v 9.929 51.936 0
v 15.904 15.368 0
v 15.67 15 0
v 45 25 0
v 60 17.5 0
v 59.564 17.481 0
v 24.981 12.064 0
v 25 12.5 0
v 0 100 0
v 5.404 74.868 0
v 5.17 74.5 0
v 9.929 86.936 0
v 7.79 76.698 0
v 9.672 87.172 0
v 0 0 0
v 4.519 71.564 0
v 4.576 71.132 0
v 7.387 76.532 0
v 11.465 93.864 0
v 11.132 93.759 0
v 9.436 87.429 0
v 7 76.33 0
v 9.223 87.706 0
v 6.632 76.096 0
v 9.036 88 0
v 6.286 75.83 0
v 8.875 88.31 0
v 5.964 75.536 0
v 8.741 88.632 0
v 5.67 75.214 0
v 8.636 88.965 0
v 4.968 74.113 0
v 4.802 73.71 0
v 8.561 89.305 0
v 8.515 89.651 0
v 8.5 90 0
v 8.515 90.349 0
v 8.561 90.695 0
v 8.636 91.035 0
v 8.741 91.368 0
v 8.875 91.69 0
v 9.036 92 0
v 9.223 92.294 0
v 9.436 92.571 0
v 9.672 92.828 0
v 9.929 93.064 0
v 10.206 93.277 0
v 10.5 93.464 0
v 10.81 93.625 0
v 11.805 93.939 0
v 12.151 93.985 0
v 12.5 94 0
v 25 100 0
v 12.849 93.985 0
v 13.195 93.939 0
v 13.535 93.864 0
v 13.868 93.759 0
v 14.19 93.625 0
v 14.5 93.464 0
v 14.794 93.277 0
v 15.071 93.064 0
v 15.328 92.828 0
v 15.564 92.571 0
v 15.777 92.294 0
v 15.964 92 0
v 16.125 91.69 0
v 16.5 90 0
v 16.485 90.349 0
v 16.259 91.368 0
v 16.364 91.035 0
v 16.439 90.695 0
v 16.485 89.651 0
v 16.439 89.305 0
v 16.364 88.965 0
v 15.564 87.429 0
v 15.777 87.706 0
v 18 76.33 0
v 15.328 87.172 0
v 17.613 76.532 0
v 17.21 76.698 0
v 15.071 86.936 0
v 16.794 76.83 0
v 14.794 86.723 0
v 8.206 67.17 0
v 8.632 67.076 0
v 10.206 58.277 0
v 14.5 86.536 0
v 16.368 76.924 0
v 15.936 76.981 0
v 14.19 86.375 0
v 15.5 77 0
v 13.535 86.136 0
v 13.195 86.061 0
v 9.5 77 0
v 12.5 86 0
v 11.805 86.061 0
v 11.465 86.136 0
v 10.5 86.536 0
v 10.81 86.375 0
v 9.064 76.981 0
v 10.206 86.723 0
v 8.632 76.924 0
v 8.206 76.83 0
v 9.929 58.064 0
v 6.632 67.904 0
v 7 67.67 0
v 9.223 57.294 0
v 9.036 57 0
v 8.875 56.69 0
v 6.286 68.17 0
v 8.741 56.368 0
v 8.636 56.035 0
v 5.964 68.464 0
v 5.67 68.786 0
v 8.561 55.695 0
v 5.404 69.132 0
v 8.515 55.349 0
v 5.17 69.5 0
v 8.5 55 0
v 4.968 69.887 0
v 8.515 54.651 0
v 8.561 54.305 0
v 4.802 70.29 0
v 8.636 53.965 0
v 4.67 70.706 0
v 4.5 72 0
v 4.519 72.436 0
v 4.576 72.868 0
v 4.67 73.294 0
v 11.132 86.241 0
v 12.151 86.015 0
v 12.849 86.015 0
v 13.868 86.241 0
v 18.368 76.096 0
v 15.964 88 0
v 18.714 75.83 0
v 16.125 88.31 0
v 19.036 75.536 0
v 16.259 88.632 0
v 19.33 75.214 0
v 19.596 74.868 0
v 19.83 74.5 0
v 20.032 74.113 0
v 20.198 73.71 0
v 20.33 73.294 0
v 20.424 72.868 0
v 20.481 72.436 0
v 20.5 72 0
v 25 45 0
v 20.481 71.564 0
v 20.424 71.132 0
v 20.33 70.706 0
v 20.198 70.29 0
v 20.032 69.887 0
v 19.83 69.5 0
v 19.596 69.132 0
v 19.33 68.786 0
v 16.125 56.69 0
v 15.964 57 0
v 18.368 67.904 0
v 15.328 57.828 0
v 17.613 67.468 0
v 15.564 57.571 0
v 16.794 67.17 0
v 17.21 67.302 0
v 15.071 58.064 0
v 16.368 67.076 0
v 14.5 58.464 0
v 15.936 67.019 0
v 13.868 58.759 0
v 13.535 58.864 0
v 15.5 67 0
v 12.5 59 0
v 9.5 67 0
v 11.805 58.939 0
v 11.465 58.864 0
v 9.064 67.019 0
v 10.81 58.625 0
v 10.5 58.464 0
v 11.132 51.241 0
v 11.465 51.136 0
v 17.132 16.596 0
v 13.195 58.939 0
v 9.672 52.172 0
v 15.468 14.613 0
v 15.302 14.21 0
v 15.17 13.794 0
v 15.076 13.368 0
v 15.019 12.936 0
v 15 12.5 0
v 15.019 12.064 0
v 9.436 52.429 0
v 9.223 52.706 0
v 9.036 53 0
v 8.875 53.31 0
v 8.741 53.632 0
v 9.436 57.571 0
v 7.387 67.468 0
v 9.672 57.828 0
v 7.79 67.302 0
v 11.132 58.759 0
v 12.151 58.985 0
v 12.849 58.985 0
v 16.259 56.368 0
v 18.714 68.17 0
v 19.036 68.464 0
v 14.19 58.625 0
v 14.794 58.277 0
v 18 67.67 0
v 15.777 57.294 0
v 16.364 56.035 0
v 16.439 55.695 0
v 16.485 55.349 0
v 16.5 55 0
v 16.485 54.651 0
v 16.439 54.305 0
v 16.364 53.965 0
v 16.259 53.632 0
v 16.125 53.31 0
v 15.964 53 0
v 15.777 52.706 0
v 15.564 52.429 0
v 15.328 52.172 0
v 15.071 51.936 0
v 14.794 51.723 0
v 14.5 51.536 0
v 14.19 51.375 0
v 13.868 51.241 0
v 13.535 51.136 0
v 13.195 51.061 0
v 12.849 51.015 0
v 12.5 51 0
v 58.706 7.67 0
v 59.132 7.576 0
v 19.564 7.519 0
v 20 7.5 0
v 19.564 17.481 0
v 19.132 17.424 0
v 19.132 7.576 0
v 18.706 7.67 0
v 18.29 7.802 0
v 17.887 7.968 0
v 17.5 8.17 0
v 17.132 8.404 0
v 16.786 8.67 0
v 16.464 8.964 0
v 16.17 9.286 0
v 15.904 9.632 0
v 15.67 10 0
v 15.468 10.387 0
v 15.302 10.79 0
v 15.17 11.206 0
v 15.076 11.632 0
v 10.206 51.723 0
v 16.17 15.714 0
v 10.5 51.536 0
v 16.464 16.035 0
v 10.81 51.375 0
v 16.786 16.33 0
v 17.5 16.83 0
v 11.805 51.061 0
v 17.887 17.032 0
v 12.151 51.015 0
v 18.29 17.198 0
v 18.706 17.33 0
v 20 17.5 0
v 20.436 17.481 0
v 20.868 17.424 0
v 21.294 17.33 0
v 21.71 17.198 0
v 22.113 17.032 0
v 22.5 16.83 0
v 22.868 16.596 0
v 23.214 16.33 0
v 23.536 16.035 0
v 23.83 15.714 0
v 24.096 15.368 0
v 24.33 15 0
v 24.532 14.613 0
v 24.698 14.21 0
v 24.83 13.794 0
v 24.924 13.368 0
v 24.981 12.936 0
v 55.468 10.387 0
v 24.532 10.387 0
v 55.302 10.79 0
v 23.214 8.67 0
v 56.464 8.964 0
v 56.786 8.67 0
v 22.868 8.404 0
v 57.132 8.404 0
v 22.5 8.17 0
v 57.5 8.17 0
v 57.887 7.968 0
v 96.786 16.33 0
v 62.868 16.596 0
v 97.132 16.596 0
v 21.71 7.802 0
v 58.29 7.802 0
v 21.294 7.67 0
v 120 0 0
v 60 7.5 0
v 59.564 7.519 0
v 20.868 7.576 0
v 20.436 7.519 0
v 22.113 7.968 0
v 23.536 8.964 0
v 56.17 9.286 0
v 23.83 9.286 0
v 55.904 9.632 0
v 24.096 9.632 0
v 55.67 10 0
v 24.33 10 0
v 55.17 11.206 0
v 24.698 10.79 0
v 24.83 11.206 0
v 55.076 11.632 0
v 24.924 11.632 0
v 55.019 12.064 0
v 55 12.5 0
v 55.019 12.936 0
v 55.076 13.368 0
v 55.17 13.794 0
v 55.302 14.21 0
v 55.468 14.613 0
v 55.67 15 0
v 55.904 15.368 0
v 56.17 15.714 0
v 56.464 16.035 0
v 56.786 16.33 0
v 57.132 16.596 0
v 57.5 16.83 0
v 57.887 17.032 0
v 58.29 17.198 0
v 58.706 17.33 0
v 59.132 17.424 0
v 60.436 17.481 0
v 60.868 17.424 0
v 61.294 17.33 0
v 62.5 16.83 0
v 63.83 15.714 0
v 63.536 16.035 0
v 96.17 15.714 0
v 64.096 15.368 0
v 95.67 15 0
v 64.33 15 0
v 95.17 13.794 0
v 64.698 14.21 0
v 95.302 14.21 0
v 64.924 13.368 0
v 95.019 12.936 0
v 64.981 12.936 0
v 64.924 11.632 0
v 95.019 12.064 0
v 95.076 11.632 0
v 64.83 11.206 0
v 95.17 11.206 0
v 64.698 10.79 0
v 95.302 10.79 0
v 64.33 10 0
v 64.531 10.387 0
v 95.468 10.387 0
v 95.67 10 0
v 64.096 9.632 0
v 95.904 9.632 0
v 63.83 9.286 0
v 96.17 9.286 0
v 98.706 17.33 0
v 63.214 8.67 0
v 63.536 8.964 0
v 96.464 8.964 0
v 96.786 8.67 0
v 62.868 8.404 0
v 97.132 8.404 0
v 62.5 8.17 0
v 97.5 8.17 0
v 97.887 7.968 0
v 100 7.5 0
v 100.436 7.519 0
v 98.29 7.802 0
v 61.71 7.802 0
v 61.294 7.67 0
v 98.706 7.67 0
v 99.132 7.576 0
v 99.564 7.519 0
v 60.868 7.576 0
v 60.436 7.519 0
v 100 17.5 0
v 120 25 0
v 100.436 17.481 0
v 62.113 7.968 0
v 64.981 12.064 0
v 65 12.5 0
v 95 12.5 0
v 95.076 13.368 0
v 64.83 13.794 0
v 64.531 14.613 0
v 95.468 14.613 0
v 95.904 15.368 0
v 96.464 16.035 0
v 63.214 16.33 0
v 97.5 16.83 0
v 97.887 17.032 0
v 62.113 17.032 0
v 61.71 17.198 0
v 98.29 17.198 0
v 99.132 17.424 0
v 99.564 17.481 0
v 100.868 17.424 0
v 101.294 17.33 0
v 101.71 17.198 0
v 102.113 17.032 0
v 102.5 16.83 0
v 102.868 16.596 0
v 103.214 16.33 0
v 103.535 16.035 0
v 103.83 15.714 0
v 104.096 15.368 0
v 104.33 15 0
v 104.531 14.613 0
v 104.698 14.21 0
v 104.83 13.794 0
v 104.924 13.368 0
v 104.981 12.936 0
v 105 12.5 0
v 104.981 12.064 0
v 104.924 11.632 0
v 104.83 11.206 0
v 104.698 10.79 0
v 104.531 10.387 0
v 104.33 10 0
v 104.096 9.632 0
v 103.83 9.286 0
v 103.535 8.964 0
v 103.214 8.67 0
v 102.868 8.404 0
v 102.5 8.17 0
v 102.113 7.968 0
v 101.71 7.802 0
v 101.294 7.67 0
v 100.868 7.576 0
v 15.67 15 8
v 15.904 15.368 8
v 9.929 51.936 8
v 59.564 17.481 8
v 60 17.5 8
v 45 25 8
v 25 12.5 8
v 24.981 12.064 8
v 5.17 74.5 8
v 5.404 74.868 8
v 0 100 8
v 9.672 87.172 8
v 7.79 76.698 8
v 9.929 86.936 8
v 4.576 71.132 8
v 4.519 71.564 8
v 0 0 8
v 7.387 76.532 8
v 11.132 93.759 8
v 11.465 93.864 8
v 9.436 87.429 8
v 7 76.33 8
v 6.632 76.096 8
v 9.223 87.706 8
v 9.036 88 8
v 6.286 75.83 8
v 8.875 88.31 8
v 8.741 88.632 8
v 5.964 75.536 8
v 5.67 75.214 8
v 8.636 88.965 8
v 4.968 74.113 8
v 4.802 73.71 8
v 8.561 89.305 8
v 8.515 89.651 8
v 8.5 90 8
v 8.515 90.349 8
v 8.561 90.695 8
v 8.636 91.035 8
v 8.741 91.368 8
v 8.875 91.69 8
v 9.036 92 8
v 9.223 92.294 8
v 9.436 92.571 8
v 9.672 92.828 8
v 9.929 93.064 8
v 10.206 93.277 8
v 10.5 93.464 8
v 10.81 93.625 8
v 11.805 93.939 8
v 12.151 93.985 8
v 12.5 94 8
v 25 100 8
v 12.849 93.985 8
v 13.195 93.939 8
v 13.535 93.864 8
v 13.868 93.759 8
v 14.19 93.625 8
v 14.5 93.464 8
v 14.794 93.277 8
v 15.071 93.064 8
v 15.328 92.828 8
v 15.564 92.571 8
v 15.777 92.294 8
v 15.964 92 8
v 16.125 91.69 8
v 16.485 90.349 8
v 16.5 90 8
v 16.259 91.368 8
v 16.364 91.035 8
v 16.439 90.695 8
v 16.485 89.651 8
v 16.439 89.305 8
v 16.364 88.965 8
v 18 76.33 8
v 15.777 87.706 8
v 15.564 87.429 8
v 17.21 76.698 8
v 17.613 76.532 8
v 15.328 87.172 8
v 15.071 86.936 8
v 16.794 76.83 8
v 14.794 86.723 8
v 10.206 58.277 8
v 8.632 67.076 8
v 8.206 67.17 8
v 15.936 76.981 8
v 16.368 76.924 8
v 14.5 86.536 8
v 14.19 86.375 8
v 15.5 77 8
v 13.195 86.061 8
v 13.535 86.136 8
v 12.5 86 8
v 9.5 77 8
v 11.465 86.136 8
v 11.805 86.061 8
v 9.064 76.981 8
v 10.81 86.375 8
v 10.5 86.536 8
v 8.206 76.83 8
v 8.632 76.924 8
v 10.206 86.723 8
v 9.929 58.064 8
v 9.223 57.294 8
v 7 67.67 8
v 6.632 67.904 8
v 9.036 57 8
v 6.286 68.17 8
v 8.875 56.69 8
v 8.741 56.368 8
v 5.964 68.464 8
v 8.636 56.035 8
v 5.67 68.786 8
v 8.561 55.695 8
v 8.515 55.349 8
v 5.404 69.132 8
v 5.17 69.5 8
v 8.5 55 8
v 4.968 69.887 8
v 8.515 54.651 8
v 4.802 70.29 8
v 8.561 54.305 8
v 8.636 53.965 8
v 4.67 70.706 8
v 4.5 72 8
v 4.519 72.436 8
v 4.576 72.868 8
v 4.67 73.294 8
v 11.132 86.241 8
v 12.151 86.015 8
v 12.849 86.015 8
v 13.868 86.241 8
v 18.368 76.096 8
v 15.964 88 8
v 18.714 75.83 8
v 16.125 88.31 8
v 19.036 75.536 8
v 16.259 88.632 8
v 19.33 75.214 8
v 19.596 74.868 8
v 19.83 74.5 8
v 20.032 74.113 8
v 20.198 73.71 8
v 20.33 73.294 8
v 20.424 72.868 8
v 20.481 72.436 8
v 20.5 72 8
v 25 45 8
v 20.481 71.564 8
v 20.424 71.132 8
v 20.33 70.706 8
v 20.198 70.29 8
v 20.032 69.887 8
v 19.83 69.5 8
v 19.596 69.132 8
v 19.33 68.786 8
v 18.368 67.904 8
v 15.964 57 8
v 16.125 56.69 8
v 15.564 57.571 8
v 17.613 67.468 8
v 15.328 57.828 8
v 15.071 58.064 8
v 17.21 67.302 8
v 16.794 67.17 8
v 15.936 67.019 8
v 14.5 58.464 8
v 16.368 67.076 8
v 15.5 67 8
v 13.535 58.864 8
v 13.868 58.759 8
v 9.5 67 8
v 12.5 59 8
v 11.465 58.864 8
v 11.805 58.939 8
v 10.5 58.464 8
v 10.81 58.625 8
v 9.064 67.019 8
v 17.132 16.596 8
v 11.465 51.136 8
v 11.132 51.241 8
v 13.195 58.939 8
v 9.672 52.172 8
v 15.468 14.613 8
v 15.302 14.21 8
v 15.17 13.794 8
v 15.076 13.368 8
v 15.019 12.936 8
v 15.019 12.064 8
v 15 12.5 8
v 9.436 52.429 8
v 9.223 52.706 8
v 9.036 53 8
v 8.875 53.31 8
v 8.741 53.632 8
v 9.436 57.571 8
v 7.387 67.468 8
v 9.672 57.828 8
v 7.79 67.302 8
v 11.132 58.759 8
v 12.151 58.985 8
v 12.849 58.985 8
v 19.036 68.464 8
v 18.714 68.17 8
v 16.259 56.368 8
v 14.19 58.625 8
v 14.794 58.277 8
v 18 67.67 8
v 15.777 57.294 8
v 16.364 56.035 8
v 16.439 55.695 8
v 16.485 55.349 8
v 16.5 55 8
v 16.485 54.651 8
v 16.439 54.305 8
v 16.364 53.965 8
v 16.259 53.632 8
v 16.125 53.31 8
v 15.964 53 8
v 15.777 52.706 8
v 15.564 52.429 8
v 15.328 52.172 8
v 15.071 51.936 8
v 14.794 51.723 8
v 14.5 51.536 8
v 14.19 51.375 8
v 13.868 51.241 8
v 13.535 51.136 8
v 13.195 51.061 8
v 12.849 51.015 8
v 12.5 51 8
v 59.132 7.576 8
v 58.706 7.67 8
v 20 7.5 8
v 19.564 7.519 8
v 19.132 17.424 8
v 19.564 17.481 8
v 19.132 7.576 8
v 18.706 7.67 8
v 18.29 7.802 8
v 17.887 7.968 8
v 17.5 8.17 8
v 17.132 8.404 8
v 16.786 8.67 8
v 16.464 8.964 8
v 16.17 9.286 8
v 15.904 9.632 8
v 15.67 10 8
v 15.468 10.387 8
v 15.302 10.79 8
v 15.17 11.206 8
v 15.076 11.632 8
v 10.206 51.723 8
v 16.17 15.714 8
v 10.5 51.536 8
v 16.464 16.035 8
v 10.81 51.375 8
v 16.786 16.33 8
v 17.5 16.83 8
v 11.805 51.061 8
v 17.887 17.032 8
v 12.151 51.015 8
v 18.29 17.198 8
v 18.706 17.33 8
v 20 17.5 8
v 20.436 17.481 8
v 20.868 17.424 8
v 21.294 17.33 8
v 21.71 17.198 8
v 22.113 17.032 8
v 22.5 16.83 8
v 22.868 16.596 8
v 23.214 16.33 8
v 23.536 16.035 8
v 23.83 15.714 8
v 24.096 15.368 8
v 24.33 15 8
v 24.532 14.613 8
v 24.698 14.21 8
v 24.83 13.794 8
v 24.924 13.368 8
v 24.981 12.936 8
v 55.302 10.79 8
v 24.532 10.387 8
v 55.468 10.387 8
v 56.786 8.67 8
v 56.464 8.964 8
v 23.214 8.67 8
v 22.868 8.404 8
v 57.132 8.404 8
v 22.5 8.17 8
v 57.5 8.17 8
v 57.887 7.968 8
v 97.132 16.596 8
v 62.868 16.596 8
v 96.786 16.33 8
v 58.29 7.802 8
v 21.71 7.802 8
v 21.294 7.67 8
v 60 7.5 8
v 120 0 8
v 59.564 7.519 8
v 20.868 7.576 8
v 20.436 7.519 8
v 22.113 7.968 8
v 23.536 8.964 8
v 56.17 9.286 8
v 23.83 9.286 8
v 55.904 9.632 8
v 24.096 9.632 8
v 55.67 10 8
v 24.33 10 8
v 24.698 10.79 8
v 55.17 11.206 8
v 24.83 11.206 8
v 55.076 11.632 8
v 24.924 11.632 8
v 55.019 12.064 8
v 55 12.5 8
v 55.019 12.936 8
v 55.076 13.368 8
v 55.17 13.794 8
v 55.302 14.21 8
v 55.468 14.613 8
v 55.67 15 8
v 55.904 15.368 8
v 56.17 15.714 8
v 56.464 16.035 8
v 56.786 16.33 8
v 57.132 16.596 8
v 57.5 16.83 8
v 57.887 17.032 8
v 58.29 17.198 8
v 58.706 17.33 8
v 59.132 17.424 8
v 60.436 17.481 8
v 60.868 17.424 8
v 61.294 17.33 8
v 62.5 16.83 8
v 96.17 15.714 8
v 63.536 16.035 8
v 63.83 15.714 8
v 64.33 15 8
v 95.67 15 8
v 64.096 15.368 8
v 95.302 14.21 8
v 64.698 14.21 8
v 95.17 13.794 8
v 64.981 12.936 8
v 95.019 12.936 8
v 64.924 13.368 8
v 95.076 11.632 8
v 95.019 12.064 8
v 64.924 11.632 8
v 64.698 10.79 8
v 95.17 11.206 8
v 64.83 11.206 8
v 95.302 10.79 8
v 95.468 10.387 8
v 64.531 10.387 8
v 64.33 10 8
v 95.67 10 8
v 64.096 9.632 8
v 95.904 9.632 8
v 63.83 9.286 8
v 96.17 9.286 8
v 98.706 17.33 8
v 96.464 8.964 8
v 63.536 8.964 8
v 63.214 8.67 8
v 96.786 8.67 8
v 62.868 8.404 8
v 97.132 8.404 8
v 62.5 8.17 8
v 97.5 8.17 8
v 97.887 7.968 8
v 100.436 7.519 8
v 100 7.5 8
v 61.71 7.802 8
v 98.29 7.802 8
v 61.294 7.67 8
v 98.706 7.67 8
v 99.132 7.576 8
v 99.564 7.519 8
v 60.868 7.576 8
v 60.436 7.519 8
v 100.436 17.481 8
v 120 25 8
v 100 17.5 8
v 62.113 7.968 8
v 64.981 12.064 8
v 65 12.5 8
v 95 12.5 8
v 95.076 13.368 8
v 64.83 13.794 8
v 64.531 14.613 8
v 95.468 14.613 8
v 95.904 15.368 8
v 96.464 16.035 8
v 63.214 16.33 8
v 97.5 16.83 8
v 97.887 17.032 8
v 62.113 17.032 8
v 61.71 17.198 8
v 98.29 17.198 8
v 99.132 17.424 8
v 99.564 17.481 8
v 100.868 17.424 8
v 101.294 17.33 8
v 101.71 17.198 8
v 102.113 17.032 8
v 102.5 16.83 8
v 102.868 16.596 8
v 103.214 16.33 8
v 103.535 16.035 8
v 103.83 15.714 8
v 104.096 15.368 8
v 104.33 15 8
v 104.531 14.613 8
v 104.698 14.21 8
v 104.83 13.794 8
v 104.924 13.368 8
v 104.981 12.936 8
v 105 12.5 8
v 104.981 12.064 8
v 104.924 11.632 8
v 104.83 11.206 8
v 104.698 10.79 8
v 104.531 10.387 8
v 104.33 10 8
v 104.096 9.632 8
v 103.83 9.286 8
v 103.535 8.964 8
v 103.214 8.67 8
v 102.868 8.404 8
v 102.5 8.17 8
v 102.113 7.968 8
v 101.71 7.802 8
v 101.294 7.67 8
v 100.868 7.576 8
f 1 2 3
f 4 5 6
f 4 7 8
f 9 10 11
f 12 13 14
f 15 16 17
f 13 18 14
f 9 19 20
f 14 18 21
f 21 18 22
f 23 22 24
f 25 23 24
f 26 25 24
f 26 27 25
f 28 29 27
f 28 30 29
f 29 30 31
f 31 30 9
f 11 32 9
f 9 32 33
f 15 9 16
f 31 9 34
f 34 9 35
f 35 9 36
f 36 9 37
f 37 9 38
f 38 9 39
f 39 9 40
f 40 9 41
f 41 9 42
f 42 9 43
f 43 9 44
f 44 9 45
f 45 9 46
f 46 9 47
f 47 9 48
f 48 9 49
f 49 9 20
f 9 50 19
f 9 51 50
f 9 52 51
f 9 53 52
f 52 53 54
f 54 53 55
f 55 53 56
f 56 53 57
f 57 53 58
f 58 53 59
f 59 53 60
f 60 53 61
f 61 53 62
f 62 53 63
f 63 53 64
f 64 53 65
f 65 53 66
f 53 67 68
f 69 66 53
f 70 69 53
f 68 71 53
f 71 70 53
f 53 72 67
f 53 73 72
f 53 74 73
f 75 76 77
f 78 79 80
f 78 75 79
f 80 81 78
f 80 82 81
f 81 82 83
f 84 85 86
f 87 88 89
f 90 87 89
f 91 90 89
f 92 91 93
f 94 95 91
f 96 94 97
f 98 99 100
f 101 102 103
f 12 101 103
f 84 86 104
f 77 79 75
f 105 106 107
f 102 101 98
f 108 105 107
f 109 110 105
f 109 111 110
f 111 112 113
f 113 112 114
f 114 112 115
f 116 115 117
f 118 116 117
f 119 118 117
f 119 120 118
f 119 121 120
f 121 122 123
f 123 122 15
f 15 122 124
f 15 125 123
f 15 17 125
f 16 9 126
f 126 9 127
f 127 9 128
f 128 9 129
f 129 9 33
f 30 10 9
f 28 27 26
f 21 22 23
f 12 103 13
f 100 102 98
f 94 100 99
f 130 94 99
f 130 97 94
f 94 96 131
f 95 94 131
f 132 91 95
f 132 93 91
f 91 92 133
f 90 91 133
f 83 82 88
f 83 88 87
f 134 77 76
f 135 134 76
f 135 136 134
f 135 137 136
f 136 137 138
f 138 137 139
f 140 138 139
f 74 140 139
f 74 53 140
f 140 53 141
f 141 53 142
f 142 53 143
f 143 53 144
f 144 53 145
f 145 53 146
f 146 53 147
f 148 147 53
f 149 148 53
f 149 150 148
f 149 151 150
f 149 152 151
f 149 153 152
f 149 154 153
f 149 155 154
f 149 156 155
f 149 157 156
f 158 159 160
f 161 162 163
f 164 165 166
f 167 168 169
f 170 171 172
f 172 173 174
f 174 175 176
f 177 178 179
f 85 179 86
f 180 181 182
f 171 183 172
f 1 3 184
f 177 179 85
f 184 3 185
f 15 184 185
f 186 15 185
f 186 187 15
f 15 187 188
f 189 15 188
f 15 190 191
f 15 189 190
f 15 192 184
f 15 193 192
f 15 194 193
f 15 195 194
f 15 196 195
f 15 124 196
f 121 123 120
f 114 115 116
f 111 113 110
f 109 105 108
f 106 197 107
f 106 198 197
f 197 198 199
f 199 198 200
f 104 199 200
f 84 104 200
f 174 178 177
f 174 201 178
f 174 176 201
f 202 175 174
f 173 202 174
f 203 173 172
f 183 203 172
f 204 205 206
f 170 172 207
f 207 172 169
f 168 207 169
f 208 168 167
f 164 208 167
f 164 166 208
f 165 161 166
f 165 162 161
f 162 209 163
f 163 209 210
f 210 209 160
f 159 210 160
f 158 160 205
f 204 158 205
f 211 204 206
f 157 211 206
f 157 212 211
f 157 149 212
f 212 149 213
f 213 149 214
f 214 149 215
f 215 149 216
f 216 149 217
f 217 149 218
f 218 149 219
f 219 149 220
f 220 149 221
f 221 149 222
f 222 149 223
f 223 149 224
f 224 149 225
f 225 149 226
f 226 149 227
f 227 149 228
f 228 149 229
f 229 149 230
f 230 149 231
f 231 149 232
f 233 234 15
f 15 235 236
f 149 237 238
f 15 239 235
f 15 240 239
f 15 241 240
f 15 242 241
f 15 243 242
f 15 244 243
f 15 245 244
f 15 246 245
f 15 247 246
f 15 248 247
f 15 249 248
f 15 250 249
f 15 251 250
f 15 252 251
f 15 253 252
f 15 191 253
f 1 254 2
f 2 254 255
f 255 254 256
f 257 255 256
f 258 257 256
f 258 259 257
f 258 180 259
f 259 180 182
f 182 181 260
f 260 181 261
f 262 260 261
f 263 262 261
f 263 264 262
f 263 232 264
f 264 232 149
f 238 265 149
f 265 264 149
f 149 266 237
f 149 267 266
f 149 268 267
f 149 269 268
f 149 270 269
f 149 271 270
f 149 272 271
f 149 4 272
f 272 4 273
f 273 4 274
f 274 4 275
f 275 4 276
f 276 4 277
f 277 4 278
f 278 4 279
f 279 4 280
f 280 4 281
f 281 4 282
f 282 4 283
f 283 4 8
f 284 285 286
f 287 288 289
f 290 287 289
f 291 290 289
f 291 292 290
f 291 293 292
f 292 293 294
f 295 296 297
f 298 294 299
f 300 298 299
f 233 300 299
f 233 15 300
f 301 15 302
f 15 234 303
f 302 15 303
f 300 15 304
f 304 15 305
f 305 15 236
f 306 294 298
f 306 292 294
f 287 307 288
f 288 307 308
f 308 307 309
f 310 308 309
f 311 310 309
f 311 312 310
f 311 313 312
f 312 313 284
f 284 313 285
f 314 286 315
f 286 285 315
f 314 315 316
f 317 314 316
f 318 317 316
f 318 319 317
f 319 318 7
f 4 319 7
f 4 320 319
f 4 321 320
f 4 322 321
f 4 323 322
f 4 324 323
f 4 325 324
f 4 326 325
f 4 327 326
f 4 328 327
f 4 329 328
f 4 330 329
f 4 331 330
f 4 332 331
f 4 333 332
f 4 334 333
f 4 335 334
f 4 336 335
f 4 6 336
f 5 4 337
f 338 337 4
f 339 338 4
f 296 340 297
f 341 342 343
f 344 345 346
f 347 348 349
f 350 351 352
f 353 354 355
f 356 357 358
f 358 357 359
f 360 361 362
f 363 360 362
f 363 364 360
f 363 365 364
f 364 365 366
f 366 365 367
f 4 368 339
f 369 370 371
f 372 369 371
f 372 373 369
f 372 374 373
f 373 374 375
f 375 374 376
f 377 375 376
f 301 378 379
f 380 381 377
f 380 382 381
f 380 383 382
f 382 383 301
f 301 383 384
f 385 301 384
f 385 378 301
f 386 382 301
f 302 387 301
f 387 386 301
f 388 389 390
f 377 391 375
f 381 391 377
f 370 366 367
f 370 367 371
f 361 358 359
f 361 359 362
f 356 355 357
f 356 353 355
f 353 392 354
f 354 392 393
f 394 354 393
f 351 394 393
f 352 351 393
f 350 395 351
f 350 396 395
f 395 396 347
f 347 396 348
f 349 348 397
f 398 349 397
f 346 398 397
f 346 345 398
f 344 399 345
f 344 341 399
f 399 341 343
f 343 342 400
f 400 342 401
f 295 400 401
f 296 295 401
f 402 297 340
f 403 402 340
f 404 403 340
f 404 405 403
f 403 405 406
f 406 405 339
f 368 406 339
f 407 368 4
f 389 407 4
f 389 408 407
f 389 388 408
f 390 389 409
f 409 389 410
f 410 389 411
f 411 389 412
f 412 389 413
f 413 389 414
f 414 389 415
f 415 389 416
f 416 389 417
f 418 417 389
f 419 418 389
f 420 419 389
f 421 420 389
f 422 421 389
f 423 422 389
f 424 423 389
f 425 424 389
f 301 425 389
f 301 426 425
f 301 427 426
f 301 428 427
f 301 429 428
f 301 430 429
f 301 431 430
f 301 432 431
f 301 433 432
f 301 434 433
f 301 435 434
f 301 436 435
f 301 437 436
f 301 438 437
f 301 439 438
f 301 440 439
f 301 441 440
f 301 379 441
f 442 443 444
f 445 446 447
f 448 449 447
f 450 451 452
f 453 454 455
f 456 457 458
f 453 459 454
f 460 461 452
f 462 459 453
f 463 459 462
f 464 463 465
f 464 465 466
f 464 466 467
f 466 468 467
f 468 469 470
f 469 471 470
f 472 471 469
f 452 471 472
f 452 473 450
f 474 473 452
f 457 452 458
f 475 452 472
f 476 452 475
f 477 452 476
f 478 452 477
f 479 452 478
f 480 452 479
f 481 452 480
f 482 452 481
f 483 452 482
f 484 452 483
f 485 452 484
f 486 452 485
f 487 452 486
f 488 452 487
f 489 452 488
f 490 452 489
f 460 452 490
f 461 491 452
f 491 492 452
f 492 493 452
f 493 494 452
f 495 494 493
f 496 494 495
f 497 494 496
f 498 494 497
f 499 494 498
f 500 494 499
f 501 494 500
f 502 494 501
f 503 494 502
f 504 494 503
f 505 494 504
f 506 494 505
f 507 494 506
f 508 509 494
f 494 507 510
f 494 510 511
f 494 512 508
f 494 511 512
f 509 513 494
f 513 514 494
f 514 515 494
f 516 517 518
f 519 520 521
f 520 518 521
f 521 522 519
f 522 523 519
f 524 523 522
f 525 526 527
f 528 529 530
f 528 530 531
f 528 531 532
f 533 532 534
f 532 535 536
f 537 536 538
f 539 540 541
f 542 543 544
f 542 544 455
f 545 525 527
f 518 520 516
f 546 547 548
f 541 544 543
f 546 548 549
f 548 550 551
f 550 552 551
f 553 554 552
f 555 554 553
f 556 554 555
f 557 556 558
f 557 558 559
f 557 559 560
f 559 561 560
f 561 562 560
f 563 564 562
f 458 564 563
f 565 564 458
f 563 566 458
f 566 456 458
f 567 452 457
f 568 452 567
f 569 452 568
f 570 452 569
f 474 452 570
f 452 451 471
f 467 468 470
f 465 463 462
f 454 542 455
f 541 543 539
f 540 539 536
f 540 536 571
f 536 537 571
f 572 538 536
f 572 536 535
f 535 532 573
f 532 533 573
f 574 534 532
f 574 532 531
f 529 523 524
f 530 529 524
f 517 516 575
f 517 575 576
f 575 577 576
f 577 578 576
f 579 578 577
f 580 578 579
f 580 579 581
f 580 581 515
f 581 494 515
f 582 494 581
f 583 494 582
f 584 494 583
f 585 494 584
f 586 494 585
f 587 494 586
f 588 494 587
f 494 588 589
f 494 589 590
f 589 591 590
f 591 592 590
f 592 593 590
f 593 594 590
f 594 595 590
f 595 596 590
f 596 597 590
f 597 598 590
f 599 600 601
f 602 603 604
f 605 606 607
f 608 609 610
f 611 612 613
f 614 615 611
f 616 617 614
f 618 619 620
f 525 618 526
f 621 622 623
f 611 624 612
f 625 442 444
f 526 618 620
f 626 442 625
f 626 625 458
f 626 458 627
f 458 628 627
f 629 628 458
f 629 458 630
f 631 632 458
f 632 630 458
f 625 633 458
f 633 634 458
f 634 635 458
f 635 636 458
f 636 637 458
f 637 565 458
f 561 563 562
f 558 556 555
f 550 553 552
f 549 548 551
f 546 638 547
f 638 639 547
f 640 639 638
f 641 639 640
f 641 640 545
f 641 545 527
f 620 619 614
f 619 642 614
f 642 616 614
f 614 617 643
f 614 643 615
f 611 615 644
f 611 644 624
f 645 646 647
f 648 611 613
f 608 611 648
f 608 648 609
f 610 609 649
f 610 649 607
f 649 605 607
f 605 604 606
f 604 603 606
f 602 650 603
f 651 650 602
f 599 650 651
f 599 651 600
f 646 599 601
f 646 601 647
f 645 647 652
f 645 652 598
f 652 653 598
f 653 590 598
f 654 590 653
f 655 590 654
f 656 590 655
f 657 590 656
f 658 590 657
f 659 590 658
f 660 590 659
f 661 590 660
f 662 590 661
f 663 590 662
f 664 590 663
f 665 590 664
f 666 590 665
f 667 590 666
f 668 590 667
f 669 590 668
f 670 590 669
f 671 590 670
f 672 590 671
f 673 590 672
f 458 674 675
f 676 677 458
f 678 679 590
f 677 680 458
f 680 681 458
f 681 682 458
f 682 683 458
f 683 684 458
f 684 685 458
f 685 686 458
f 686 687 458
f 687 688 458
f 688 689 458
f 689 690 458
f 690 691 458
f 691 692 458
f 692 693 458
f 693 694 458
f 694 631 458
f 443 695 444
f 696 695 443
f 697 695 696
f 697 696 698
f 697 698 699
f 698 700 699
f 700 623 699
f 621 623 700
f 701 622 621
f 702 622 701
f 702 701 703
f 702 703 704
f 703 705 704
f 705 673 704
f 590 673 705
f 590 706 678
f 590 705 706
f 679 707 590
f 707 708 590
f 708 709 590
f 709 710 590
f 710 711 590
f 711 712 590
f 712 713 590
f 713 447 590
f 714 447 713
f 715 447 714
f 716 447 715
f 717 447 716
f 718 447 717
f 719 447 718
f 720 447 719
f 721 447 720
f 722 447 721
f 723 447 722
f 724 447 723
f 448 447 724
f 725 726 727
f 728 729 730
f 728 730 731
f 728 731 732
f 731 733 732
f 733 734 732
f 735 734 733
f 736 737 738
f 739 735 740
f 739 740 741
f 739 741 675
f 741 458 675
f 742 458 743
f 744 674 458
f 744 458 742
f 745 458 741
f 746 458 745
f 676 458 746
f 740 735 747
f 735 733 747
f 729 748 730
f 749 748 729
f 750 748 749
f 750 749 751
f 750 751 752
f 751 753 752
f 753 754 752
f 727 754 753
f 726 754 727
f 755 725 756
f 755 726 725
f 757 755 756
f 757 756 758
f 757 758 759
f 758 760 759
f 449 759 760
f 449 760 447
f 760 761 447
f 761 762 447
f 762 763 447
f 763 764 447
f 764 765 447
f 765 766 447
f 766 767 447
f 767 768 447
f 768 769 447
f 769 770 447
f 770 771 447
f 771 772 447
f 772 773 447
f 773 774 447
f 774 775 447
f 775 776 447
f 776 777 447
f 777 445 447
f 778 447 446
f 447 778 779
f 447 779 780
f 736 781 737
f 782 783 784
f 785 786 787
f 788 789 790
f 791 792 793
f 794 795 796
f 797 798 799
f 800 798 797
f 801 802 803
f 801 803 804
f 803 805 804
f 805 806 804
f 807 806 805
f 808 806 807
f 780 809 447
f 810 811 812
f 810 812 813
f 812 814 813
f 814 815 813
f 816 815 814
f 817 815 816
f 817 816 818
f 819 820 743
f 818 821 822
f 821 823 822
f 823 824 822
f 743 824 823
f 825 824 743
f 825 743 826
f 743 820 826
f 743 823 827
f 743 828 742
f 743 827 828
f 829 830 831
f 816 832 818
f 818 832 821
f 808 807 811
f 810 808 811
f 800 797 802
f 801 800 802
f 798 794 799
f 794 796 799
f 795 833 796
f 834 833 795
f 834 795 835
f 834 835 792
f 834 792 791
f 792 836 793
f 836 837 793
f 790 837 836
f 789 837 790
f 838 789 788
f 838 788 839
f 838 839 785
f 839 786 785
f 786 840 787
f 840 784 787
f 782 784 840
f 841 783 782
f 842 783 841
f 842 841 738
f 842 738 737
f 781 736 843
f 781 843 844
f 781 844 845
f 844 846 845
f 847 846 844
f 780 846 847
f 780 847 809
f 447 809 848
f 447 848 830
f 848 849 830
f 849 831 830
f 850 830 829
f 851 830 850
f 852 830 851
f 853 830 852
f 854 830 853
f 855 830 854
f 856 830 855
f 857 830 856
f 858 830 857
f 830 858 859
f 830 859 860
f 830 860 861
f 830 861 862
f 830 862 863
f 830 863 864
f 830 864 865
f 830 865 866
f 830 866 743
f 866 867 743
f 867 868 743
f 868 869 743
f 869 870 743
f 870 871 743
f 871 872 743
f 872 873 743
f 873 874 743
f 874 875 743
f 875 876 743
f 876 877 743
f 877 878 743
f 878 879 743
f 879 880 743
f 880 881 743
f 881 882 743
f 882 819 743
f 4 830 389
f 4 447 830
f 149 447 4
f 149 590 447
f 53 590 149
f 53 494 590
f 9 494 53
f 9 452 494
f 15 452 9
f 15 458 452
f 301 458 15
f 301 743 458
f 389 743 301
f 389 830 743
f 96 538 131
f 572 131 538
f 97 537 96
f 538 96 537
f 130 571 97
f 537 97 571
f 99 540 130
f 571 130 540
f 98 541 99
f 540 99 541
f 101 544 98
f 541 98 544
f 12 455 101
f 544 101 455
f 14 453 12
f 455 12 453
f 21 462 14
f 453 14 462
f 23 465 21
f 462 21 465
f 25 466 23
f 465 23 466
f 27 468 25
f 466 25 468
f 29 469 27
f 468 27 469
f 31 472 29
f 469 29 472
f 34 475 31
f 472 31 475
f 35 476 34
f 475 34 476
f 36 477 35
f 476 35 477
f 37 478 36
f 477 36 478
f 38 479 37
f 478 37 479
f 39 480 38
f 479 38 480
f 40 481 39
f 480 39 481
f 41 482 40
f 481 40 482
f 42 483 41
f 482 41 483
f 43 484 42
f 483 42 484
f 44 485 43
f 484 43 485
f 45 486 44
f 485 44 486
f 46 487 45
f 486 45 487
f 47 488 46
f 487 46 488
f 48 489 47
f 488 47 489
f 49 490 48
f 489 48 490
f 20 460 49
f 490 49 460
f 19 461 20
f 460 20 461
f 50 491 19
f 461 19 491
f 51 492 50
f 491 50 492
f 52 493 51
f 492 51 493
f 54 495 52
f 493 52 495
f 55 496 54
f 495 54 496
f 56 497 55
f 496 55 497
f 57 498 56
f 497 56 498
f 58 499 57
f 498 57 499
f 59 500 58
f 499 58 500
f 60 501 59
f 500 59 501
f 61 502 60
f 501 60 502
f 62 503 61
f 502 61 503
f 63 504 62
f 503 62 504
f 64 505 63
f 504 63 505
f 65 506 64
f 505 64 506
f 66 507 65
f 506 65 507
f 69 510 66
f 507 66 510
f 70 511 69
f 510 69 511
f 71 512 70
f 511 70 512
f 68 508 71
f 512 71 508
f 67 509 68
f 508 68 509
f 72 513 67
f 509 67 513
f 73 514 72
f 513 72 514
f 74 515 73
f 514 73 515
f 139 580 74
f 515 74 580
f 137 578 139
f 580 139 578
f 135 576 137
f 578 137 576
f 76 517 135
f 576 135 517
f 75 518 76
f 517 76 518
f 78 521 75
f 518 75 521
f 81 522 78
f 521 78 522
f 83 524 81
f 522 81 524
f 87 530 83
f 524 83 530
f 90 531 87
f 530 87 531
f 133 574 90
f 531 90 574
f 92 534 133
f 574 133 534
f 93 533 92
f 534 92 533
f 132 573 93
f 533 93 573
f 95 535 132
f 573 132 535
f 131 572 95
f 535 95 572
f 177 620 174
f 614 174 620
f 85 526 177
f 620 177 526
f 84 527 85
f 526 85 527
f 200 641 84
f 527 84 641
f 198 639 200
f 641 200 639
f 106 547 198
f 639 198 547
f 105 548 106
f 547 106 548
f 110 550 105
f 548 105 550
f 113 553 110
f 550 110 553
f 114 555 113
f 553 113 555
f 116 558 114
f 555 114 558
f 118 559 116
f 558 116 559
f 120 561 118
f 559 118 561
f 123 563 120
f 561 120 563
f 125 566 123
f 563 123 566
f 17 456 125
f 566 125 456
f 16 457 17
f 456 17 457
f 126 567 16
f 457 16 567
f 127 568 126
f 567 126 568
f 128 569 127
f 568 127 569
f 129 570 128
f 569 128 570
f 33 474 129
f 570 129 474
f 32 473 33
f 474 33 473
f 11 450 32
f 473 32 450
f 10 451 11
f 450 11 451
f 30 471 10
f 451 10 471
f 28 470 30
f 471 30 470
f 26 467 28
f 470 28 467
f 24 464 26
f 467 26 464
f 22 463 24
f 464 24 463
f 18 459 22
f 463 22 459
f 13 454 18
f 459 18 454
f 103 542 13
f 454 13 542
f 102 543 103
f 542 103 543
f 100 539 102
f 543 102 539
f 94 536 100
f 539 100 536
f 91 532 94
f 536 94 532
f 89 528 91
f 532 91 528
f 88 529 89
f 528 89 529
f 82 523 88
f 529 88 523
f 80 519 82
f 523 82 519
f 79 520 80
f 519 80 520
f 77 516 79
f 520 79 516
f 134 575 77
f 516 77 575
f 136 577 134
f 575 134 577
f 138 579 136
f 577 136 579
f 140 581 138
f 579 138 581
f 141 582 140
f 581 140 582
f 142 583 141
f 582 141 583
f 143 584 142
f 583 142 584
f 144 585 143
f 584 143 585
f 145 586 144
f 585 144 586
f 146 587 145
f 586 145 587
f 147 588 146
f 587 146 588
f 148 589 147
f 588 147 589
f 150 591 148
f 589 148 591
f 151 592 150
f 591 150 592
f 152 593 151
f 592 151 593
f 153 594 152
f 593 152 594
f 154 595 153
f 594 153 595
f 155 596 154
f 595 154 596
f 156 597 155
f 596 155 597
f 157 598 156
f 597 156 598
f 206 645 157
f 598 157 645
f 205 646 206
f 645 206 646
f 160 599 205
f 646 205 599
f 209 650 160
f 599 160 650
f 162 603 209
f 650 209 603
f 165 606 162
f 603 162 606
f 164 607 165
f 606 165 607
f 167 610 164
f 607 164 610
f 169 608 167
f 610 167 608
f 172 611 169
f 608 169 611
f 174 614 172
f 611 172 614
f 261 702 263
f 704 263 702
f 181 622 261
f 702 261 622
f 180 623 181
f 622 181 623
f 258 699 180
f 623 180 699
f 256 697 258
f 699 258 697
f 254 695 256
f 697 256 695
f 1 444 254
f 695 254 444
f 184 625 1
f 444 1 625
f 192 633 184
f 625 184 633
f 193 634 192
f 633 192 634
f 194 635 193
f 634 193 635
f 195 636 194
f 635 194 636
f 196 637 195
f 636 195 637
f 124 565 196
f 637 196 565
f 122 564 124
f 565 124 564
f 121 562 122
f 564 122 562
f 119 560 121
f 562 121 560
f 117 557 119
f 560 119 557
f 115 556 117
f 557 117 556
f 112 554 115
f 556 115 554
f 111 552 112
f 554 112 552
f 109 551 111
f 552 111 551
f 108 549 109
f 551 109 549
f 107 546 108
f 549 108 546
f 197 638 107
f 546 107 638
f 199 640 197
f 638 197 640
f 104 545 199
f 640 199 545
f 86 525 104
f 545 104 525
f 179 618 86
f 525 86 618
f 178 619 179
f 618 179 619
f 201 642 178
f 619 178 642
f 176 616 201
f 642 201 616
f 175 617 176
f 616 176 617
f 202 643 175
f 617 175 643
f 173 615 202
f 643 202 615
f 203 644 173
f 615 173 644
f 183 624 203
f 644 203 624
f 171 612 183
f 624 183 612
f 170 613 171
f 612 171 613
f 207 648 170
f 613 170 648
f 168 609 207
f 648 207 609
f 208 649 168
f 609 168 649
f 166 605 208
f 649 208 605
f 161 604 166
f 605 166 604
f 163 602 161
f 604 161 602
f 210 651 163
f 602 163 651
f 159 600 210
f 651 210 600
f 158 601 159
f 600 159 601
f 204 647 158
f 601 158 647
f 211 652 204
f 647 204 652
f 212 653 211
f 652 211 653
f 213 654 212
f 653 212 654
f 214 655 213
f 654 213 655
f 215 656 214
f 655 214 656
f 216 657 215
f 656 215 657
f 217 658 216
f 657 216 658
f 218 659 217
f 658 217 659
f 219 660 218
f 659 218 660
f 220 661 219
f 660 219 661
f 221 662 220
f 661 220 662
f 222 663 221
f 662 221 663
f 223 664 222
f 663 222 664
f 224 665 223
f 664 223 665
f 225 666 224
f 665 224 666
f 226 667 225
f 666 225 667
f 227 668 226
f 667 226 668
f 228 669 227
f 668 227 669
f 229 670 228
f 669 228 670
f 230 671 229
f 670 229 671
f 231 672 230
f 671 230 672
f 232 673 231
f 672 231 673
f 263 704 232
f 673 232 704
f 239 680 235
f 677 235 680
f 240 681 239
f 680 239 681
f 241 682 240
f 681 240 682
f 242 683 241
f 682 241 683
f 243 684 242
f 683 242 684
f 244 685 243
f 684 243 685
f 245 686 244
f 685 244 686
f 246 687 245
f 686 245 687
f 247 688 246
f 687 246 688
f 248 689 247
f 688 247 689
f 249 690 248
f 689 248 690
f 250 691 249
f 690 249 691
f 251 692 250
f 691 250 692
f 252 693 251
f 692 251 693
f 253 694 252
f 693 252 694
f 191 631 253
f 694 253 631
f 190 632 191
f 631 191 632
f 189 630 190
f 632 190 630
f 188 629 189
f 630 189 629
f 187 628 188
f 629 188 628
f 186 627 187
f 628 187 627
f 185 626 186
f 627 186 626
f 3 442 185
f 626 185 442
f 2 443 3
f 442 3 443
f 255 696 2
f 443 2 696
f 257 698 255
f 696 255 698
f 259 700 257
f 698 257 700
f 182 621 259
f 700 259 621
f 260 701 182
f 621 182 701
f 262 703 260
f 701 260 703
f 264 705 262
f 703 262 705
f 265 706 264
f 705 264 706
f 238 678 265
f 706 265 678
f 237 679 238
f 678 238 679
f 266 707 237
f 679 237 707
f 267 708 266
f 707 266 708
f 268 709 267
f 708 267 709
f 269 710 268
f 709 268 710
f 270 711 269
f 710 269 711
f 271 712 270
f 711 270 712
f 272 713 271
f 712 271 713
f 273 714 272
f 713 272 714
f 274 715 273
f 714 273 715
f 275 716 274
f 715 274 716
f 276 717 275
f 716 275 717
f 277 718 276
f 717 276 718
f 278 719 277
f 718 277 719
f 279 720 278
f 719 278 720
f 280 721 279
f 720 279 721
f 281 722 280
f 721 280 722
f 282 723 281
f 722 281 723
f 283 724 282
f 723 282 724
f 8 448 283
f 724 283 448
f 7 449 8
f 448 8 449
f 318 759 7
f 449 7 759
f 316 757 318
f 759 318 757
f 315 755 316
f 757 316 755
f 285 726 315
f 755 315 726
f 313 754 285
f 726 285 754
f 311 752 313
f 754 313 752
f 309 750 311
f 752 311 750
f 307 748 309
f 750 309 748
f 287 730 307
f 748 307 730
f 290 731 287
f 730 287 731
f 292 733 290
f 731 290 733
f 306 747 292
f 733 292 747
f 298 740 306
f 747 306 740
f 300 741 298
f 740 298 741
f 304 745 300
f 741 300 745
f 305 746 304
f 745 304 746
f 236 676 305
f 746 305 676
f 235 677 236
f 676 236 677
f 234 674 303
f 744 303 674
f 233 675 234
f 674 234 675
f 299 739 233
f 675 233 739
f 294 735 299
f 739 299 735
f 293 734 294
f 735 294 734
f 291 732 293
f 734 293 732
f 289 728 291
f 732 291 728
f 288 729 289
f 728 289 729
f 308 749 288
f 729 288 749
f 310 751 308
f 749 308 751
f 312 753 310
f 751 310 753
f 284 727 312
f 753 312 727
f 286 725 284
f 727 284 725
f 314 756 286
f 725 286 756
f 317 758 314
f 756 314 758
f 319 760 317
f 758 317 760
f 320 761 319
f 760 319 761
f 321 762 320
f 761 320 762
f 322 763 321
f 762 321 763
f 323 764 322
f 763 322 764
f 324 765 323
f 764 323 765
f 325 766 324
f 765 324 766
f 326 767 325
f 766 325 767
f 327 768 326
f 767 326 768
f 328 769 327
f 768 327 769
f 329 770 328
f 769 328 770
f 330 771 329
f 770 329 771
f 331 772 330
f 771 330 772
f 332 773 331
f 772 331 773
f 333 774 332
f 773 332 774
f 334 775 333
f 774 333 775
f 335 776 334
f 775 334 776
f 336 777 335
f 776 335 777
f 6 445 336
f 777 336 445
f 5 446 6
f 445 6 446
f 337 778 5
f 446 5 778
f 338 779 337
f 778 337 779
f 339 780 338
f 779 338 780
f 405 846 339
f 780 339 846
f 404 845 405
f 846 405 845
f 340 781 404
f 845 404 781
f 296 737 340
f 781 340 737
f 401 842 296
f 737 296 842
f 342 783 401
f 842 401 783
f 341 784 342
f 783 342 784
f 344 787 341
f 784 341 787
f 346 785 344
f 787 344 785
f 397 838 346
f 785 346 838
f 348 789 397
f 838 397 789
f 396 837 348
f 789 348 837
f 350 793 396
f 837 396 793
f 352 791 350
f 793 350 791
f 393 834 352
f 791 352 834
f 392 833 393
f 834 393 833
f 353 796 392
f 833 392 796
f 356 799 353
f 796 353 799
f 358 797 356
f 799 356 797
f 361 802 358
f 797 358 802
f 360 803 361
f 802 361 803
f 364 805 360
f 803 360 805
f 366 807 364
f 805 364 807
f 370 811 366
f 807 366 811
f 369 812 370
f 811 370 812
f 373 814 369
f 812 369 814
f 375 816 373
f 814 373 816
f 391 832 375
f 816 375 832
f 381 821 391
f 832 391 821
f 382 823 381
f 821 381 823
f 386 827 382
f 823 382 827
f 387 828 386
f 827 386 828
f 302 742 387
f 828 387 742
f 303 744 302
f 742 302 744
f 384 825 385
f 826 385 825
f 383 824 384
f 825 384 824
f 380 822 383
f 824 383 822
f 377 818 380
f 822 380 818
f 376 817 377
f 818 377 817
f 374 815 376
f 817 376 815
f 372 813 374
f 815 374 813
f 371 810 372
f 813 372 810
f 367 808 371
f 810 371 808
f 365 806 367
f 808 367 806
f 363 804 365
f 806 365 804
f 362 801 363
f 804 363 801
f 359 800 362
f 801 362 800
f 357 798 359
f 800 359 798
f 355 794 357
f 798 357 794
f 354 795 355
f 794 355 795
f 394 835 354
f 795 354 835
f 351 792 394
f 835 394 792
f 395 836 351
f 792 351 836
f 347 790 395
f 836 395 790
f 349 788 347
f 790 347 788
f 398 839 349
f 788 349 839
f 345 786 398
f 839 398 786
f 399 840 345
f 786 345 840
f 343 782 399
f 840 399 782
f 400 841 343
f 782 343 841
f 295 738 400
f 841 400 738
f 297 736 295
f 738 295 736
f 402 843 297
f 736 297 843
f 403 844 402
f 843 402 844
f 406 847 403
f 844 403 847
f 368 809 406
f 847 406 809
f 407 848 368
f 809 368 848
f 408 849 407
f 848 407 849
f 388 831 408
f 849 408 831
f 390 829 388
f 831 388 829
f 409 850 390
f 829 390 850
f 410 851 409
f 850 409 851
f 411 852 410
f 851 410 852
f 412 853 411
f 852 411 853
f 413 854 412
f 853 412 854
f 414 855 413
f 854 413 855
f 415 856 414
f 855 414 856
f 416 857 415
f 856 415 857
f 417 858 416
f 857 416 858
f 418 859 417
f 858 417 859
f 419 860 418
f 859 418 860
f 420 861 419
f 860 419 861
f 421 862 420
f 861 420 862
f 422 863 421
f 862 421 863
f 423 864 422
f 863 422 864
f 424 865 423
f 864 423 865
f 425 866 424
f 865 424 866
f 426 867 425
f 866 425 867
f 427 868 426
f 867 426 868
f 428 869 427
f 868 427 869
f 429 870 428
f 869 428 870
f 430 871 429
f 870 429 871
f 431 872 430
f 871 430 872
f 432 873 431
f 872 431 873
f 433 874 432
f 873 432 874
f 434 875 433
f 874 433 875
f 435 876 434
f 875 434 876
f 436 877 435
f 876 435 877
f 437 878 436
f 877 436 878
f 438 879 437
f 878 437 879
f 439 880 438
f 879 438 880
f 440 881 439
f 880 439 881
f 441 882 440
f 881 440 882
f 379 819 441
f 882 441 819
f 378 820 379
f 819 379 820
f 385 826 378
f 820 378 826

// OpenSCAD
// Generated by DXF to 3D (https://github.com) - open in OpenSCAD
depth = 8;
scale_factor = 1;

scale([scale_factor, scale_factor, 1])
union() {
  linear_extrude(height = depth)
    polygon(points = [[0,0],[120,0],[120,25],[45,25],[25,45],[25,100],[0,100],[25,12.5],[24.981,12.9358],[24.924,13.3682],[24.8296,13.7941],[24.6985,14.2101],[24.5315,14.6131],[24.3301,15],[24.0958,15.3679],[23.8302,15.7139],[23.5355,16.0355],[23.2139,16.3302],[22.8679,16.5958],[22.5,16.8301],[22.1131,17.0315],[21.7101,17.1985],[21.2941,17.3296],[20.8682,17.424],[20.4358,17.481],[20,17.5],[19.5642,17.481],[19.1318,17.424],[18.7059,17.3296],[18.2899,17.1985],[17.8869,17.0315],[17.5,16.8301],[17.1321,16.5958],[16.7861,16.3302],[16.4645,16.0355],[16.1698,15.7139],[15.9042,15.3679],[15.6699,15],[15.4685,14.6131],[15.3015,14.2101],[15.1704,13.7941],[15.076,13.3682],[15.019,12.9358],[15,12.5],[15.019,12.0642],[15.076,11.6318],[15.1704,11.2059],[15.3015,10.7899],[15.4685,10.3869],[15.6699,10],[15.9042,9.6321],[16.1698,9.2861],[16.4645,8.9645],[16.7861,8.6698],[17.1321,8.4042],[17.5,8.1699],[17.8869,7.9685],[18.2899,7.8015],[18.7059,7.6704],[19.1318,7.576],[19.5642,7.519],[20,7.5],[20.4358,7.519],[20.8682,7.576],[21.2941,7.6704],[21.7101,7.8015],[22.1131,7.9685],[22.5,8.1699],[22.8679,8.4042],[23.2139,8.6698],[23.5355,8.9645],[23.8302,9.2861],[24.0958,9.6321],[24.3301,10],[24.5315,10.3869],[24.6985,10.7899],[24.8296,11.2059],[24.924,11.6318],[24.981,12.0642],[65,12.5],[64.981,12.9358],[64.924,13.3682],[64.8296,13.7941],[64.6985,14.2101],[64.5315,14.6131],[64.3301,15],[64.0958,15.3679],[63.8302,15.7139],[63.5355,16.0355],[63.2139,16.3302],[62.8679,16.5958],[62.5,16.8301],[62.1131,17.0315],[61.7101,17.1985],[61.2941,17.3296],[60.8682,17.424],[60.4358,17.481],[60,17.5],[59.5642,17.481],[59.1318,17.424],[58.7059,17.3296],[58.2899,17.1985],[57.8869,17.0315],[57.5,16.8301],[57.1321,16.5958],[56.7861,16.3302],[56.4645,16.0355],[56.1698,15.7139],[55.9042,15.3679],[55.6699,15],[55.4685,14.6131],[55.3015,14.2101],[55.1704,13.7941],[55.076,13.3682],[55.019,12.9358],[55,12.5],[55.019,12.0642],[55.076,11.6318],[55.1704,11.2059],[55.3015,10.7899],[55.4685,10.3869],[55.6699,10],[55.9042,9.6321],[56.1698,9.2861],[56.4645,8.9645],[56.7861,8.6698],[57.1321,8.4042],[57.5,8.1699],[57.8869,7.9685],[58.2899,7.8015],[58.7059,7.6704],[59.1318,7.576],[59.5642,7.519],[60,7.5],[60.4358,7.519],[60.8682,7.576],[61.2941,7.6704],[61.7101,7.8015],[62.1131,7.9685],[62.5,8.1699],[62.8679,8.4042],[63.2139,8.6698],[63.5355,8.9645],[63.8302,9.2861],[64.0958,9.6321],[64.3301,10],[64.5315,10.3869],[64.6985,10.7899],[64.8296,11.2059],[64.924,11.6318],[64.981,12.0642],[105,12.5],[104.981,12.9358],[104.924,13.3682],[104.8296,13.7941],[104.6985,14.2101],[104.5315,14.6131],[104.3301,15],[104.0958,15.3679],[103.8302,15.7139],[103.5355,16.0355],[103.2139,16.3302],[102.8679,16.5958],[102.5,16.8301],[102.1131,17.0315],[101.7101,17.1985],[101.2941,17.3296],[100.8682,17.424],[100.4358,17.481],[100,17.5],[99.5642,17.481],[99.1318,17.424],[98.7059,17.3296],[98.2899,17.1985],[97.8869,17.0315],[97.5,16.8301],[97.1321,16.5958],[96.7861,16.3302],[96.4645,16.0355],[96.1698,15.7139],[95.9042,15.3679],[95.6699,15],[95.4685,14.6131],[95.3015,14.2101],[95.1704,13.7941],[95.076,13.3682],[95.019,12.9358],[95,12.5],[95.019,12.0642],[95.076,11.6318],[95.1704,11.2059],[95.3015,10.7899],[95.4685,10.3869],[95.6699,10],[95.9042,9.6321],[96.1698,9.2861],[96.4645,8.9645],[96.7861,8.6698],[97.1321,8.4042],[97.5,8.1699],[97.8869,7.9685],[98.2899,7.8015],[98.7059,7.6704],[99.1318,7.576],[99.5642,7.519],[100,7.5],[100.4358,7.519],[100.8682,7.576],[101.2941,7.6704],[101.7101,7.8015],[102.1131,7.9685],[102.5,8.1699],[102.8679,8.4042],[103.2139,8.6698],[103.5355,8.9645],[103.8302,9.2861],[104.0958,9.6321],[104.3301,10],[104.5315,10.3869],[104.6985,10.7899],[104.8296,11.2059],[104.924,11.6318],[104.981,12.0642],[16.5,55],[16.4848,55.3486],[16.4392,55.6946],[16.3637,56.0353],[16.2588,56.3681],[16.1252,56.6905],[15.9641,57],[15.7766,57.2943],[15.5642,57.5712],[15.3284,57.8284],[15.0712,58.0642],[14.7943,58.2766],[14.5,58.4641],[14.1905,58.6252],[13.8681,58.7588],[13.5353,58.8637],[13.1946,58.9392],[12.8486,58.9848],[12.5,59],[12.1514,58.9848],[11.8054,58.9392],[11.4647,58.8637],[11.1319,58.7588],[10.8095,58.6252],[10.5,58.4641],[10.2057,58.2766],[9.9288,58.0642],[9.6716,57.8284],[9.4358,57.5712],[9.2234,57.2943],[9.0359,57],[8.8748,56.6905],[8.7412,56.3681],[8.6363,56.0353],[8.5608,55.6946],[8.5152,55.3486],[8.5,55],[8.5152,54.6514],[8.5608,54.3054],[8.6363,53.9647],[8.7412,53.6319],[8.8748,53.3095],[9.0359,53],[9.2234,52.7057],[9.4358,52.4288],[9.6716,52.1716],[9.9288,51.9358],[10.2057,51.7234],[10.5,51.5359],[10.8095,51.3748],[11.1319,51.2412],[11.4647,51.1363],[11.8054,51.0608],[12.1514,51.0152],[12.5,51],[12.8486,51.0152],[13.1946,51.0608],[13.5353,51.1363],[13.8681,51.2412],[14.1905,51.3748],[14.5,51.5359],[14.7943,51.7234],[15.0712,51.9358],[15.3284,52.1716],[15.5642,52.4288],[15.7766,52.7057],[15.9641,53],[16.1252,53.3095],[16.2588,53.6319],[16.3637,53.9647],[16.4392,54.3054],[16.4848,54.6514],[16.5,90],[16.4848,90.3486],[16.4392,90.6946],[16.3637,91.0353],[16.2588,91.3681],[16.1252,91.6905],[15.9641,92],[15.7766,92.2943],[15.5642,92.5712],[15.3284,92.8284],[15.0712,93.0642],[14.7943,93.2766],[14.5,93.4641],[14.1905,93.6252],[13.8681,93.7588],[13.5353,93.8637],[13.1946,93.9392],[12.8486,93.9848],[12.5,94],[12.1514,93.9848],[11.8054,93.9392],[11.4647,93.8637],[11.1319,93.7588],[10.8095,93.6252],[10.5,93.4641],[10.2057,93.2766],[9.9288,93.0642],[9.6716,92.8284],[9.4358,92.5712],[9.2234,92.2943],[9.0359,92],[8.8748,91.6905],[8.7412,91.3681],[8.6363,91.0353],[8.5608,90.6946],[8.5152,90.3486],[8.5,90],[8.5152,89.6514],[8.5608,89.3054],[8.6363,88.9647],[8.7412,88.6319],[8.8748,88.3095],[9.0359,88],[9.2234,87.7057],[9.4358,87.4288],[9.6716,87.1716],[9.9288,86.9358],[10.2057,86.7234],[10.5,86.5359],[10.8095,86.3748],[11.1319,86.2412],[11.4647,86.1363],[11.8054,86.0608],[12.1514,86.0152],[12.5,86],[12.8486,86.0152],[13.1946,86.0608],[13.5353,86.1363],[13.8681,86.2412],[14.1905,86.3748],[14.5,86.5359],[14.7943,86.7234],[15.0712,86.9358],[15.3284,87.1716],[15.5642,87.4288],[15.7766,87.7057],[15.9641,88],[16.1252,88.3095],[16.2588,88.6319],[16.3637,88.9647],[16.4392,89.3054],[16.4848,89.6514],[9.5,67],[15.5,67],[15.9358,67.019],[16.3682,67.076],[16.7941,67.1704],[17.2101,67.3015],[17.6131,67.4685],[18,67.6699],[18.3679,67.9042],[18.7139,68.1698],[19.0355,68.4645],[19.3302,68.7861],[19.5958,69.1321],[19.8301,69.5],[20.0315,69.8869],[20.1985,70.2899],[20.3296,70.7059],[20.424,71.1318],[20.481,71.5642],[20.5,72],[20.481,72.4358],[20.424,72.8682],[20.3296,73.2941],[20.1985,73.7101],[20.0315,74.1131],[19.8301,74.5],[19.5958,74.8679],[19.3302,75.2139],[19.0355,75.5355],[18.7139,75.8302],[18.3679,76.0958],[18,76.3301],[17.6131,76.5315],[17.2101,76.6985],[16.7941,76.8296],[16.3682,76.924],[15.9358,76.981],[15.5,77],[9.5,77],[9.0642,76.981],[8.6318,76.924],[8.2059,76.8296],[7.7899,76.6985],[7.3869,76.5315],[7,76.3301],[6.6321,76.0958],[6.2861,75.8302],[5.9645,75.5355],[5.6698,75.2139],[5.4042,74.8679],[5.1699,74.5],[4.9685,74.1131],[4.8015,73.7101],[4.6704,73.2941],[4.576,72.8682],[4.519,72.4358],[4.5,72],[4.519,71.5642],[4.576,71.1318],[4.6704,70.7059],[4.8015,70.2899],[4.9685,69.8869],[5.1699,69.5],[5.4042,69.1321],[5.6698,68.7861],[5.9645,68.4645],[6.2861,68.1698],[6.6321,67.9042],[7,67.6699],[7.3869,67.4685],[7.7899,67.3015],[8.2059,67.1704],[8.6318,67.076],[9.0642,67.019]],
      paths = [[0,1,2,3,4,5,6],[7,8,9,10,11,12,13,14,15,16,17,18,19,20,21,22,23,24,25,26,27,28,29,30,31,32,33,34,35,36,37,38,39,40,41,42,43,44,45,46,47,48,49,50,51,52,53,54,55,56,57,58,59,60,61,62,63,64,65,66,67,68,69,70,71,72,73,74,75,76,77,78],[79,80,81,82,83,84,85,86,87,88,89,90,91,92,93,94,95,96,97,98,99,100,101,102,103,104,105,106,107,108,109,110,111,112,113,114,115,116,117,118,119,120,121,122,123,124,125,126,127,128,129,130,131,132,133,134,135,136,137,138,139,140,141,142,143,144,145,146,147,148,149,150],[151,152,153,154,155,156,157,158,159,160,161,162,163,164,165,166,167,168,169,170,171,172,173,174,175,176,177,178,179,180,181,182,183,184,185,186,187,188,189,190,191,192,193,194,195,196,197,198,199,200,201,202,203,204,205,206,207,208,209,210,211,212,213,214,215,216,217,218,219,220,221,222],[223,224,225,226,227,228,229,230,231,232,233,234,235,236,237,238,239,240,241,242,243,244,245,246,247,248,249,250,251,252,253,254,255,256,257,258,259,260,261,262,263,264,265,266,267,268,269,270,271,272,273,274,275,276,277,278,279,280,281,282,283,284,285,286,287,288,289,290,291,292,293,294],[295,296,297,298,299,300,301,302,303,304,305,306,307,308,309,310,311,312,313,314,315,316,317,318,319,320,321,322,323,324,325,326,327,328,329,330,331,332,333,334,335,336,337,338,339,340,341,342,343,344,345,346,347,348,349,350,351,352,353,354,355,356,357,358,359,360,361,362,363,364,365,366],[367,368,369,370,371,372,373,374,375,376,377,378,379,380,381,382,383,384,385,386,387,388,389,390,391,392,393,394,395,396,397,398,399,400,401,402,403,404,405,406,407,408,409,410,411,412,413,414,415,416,417,418,419,420,421,422,423,424,425,426,427,428,429,430,431,432,433,434,435,436,437,438,439,440]]);
}
